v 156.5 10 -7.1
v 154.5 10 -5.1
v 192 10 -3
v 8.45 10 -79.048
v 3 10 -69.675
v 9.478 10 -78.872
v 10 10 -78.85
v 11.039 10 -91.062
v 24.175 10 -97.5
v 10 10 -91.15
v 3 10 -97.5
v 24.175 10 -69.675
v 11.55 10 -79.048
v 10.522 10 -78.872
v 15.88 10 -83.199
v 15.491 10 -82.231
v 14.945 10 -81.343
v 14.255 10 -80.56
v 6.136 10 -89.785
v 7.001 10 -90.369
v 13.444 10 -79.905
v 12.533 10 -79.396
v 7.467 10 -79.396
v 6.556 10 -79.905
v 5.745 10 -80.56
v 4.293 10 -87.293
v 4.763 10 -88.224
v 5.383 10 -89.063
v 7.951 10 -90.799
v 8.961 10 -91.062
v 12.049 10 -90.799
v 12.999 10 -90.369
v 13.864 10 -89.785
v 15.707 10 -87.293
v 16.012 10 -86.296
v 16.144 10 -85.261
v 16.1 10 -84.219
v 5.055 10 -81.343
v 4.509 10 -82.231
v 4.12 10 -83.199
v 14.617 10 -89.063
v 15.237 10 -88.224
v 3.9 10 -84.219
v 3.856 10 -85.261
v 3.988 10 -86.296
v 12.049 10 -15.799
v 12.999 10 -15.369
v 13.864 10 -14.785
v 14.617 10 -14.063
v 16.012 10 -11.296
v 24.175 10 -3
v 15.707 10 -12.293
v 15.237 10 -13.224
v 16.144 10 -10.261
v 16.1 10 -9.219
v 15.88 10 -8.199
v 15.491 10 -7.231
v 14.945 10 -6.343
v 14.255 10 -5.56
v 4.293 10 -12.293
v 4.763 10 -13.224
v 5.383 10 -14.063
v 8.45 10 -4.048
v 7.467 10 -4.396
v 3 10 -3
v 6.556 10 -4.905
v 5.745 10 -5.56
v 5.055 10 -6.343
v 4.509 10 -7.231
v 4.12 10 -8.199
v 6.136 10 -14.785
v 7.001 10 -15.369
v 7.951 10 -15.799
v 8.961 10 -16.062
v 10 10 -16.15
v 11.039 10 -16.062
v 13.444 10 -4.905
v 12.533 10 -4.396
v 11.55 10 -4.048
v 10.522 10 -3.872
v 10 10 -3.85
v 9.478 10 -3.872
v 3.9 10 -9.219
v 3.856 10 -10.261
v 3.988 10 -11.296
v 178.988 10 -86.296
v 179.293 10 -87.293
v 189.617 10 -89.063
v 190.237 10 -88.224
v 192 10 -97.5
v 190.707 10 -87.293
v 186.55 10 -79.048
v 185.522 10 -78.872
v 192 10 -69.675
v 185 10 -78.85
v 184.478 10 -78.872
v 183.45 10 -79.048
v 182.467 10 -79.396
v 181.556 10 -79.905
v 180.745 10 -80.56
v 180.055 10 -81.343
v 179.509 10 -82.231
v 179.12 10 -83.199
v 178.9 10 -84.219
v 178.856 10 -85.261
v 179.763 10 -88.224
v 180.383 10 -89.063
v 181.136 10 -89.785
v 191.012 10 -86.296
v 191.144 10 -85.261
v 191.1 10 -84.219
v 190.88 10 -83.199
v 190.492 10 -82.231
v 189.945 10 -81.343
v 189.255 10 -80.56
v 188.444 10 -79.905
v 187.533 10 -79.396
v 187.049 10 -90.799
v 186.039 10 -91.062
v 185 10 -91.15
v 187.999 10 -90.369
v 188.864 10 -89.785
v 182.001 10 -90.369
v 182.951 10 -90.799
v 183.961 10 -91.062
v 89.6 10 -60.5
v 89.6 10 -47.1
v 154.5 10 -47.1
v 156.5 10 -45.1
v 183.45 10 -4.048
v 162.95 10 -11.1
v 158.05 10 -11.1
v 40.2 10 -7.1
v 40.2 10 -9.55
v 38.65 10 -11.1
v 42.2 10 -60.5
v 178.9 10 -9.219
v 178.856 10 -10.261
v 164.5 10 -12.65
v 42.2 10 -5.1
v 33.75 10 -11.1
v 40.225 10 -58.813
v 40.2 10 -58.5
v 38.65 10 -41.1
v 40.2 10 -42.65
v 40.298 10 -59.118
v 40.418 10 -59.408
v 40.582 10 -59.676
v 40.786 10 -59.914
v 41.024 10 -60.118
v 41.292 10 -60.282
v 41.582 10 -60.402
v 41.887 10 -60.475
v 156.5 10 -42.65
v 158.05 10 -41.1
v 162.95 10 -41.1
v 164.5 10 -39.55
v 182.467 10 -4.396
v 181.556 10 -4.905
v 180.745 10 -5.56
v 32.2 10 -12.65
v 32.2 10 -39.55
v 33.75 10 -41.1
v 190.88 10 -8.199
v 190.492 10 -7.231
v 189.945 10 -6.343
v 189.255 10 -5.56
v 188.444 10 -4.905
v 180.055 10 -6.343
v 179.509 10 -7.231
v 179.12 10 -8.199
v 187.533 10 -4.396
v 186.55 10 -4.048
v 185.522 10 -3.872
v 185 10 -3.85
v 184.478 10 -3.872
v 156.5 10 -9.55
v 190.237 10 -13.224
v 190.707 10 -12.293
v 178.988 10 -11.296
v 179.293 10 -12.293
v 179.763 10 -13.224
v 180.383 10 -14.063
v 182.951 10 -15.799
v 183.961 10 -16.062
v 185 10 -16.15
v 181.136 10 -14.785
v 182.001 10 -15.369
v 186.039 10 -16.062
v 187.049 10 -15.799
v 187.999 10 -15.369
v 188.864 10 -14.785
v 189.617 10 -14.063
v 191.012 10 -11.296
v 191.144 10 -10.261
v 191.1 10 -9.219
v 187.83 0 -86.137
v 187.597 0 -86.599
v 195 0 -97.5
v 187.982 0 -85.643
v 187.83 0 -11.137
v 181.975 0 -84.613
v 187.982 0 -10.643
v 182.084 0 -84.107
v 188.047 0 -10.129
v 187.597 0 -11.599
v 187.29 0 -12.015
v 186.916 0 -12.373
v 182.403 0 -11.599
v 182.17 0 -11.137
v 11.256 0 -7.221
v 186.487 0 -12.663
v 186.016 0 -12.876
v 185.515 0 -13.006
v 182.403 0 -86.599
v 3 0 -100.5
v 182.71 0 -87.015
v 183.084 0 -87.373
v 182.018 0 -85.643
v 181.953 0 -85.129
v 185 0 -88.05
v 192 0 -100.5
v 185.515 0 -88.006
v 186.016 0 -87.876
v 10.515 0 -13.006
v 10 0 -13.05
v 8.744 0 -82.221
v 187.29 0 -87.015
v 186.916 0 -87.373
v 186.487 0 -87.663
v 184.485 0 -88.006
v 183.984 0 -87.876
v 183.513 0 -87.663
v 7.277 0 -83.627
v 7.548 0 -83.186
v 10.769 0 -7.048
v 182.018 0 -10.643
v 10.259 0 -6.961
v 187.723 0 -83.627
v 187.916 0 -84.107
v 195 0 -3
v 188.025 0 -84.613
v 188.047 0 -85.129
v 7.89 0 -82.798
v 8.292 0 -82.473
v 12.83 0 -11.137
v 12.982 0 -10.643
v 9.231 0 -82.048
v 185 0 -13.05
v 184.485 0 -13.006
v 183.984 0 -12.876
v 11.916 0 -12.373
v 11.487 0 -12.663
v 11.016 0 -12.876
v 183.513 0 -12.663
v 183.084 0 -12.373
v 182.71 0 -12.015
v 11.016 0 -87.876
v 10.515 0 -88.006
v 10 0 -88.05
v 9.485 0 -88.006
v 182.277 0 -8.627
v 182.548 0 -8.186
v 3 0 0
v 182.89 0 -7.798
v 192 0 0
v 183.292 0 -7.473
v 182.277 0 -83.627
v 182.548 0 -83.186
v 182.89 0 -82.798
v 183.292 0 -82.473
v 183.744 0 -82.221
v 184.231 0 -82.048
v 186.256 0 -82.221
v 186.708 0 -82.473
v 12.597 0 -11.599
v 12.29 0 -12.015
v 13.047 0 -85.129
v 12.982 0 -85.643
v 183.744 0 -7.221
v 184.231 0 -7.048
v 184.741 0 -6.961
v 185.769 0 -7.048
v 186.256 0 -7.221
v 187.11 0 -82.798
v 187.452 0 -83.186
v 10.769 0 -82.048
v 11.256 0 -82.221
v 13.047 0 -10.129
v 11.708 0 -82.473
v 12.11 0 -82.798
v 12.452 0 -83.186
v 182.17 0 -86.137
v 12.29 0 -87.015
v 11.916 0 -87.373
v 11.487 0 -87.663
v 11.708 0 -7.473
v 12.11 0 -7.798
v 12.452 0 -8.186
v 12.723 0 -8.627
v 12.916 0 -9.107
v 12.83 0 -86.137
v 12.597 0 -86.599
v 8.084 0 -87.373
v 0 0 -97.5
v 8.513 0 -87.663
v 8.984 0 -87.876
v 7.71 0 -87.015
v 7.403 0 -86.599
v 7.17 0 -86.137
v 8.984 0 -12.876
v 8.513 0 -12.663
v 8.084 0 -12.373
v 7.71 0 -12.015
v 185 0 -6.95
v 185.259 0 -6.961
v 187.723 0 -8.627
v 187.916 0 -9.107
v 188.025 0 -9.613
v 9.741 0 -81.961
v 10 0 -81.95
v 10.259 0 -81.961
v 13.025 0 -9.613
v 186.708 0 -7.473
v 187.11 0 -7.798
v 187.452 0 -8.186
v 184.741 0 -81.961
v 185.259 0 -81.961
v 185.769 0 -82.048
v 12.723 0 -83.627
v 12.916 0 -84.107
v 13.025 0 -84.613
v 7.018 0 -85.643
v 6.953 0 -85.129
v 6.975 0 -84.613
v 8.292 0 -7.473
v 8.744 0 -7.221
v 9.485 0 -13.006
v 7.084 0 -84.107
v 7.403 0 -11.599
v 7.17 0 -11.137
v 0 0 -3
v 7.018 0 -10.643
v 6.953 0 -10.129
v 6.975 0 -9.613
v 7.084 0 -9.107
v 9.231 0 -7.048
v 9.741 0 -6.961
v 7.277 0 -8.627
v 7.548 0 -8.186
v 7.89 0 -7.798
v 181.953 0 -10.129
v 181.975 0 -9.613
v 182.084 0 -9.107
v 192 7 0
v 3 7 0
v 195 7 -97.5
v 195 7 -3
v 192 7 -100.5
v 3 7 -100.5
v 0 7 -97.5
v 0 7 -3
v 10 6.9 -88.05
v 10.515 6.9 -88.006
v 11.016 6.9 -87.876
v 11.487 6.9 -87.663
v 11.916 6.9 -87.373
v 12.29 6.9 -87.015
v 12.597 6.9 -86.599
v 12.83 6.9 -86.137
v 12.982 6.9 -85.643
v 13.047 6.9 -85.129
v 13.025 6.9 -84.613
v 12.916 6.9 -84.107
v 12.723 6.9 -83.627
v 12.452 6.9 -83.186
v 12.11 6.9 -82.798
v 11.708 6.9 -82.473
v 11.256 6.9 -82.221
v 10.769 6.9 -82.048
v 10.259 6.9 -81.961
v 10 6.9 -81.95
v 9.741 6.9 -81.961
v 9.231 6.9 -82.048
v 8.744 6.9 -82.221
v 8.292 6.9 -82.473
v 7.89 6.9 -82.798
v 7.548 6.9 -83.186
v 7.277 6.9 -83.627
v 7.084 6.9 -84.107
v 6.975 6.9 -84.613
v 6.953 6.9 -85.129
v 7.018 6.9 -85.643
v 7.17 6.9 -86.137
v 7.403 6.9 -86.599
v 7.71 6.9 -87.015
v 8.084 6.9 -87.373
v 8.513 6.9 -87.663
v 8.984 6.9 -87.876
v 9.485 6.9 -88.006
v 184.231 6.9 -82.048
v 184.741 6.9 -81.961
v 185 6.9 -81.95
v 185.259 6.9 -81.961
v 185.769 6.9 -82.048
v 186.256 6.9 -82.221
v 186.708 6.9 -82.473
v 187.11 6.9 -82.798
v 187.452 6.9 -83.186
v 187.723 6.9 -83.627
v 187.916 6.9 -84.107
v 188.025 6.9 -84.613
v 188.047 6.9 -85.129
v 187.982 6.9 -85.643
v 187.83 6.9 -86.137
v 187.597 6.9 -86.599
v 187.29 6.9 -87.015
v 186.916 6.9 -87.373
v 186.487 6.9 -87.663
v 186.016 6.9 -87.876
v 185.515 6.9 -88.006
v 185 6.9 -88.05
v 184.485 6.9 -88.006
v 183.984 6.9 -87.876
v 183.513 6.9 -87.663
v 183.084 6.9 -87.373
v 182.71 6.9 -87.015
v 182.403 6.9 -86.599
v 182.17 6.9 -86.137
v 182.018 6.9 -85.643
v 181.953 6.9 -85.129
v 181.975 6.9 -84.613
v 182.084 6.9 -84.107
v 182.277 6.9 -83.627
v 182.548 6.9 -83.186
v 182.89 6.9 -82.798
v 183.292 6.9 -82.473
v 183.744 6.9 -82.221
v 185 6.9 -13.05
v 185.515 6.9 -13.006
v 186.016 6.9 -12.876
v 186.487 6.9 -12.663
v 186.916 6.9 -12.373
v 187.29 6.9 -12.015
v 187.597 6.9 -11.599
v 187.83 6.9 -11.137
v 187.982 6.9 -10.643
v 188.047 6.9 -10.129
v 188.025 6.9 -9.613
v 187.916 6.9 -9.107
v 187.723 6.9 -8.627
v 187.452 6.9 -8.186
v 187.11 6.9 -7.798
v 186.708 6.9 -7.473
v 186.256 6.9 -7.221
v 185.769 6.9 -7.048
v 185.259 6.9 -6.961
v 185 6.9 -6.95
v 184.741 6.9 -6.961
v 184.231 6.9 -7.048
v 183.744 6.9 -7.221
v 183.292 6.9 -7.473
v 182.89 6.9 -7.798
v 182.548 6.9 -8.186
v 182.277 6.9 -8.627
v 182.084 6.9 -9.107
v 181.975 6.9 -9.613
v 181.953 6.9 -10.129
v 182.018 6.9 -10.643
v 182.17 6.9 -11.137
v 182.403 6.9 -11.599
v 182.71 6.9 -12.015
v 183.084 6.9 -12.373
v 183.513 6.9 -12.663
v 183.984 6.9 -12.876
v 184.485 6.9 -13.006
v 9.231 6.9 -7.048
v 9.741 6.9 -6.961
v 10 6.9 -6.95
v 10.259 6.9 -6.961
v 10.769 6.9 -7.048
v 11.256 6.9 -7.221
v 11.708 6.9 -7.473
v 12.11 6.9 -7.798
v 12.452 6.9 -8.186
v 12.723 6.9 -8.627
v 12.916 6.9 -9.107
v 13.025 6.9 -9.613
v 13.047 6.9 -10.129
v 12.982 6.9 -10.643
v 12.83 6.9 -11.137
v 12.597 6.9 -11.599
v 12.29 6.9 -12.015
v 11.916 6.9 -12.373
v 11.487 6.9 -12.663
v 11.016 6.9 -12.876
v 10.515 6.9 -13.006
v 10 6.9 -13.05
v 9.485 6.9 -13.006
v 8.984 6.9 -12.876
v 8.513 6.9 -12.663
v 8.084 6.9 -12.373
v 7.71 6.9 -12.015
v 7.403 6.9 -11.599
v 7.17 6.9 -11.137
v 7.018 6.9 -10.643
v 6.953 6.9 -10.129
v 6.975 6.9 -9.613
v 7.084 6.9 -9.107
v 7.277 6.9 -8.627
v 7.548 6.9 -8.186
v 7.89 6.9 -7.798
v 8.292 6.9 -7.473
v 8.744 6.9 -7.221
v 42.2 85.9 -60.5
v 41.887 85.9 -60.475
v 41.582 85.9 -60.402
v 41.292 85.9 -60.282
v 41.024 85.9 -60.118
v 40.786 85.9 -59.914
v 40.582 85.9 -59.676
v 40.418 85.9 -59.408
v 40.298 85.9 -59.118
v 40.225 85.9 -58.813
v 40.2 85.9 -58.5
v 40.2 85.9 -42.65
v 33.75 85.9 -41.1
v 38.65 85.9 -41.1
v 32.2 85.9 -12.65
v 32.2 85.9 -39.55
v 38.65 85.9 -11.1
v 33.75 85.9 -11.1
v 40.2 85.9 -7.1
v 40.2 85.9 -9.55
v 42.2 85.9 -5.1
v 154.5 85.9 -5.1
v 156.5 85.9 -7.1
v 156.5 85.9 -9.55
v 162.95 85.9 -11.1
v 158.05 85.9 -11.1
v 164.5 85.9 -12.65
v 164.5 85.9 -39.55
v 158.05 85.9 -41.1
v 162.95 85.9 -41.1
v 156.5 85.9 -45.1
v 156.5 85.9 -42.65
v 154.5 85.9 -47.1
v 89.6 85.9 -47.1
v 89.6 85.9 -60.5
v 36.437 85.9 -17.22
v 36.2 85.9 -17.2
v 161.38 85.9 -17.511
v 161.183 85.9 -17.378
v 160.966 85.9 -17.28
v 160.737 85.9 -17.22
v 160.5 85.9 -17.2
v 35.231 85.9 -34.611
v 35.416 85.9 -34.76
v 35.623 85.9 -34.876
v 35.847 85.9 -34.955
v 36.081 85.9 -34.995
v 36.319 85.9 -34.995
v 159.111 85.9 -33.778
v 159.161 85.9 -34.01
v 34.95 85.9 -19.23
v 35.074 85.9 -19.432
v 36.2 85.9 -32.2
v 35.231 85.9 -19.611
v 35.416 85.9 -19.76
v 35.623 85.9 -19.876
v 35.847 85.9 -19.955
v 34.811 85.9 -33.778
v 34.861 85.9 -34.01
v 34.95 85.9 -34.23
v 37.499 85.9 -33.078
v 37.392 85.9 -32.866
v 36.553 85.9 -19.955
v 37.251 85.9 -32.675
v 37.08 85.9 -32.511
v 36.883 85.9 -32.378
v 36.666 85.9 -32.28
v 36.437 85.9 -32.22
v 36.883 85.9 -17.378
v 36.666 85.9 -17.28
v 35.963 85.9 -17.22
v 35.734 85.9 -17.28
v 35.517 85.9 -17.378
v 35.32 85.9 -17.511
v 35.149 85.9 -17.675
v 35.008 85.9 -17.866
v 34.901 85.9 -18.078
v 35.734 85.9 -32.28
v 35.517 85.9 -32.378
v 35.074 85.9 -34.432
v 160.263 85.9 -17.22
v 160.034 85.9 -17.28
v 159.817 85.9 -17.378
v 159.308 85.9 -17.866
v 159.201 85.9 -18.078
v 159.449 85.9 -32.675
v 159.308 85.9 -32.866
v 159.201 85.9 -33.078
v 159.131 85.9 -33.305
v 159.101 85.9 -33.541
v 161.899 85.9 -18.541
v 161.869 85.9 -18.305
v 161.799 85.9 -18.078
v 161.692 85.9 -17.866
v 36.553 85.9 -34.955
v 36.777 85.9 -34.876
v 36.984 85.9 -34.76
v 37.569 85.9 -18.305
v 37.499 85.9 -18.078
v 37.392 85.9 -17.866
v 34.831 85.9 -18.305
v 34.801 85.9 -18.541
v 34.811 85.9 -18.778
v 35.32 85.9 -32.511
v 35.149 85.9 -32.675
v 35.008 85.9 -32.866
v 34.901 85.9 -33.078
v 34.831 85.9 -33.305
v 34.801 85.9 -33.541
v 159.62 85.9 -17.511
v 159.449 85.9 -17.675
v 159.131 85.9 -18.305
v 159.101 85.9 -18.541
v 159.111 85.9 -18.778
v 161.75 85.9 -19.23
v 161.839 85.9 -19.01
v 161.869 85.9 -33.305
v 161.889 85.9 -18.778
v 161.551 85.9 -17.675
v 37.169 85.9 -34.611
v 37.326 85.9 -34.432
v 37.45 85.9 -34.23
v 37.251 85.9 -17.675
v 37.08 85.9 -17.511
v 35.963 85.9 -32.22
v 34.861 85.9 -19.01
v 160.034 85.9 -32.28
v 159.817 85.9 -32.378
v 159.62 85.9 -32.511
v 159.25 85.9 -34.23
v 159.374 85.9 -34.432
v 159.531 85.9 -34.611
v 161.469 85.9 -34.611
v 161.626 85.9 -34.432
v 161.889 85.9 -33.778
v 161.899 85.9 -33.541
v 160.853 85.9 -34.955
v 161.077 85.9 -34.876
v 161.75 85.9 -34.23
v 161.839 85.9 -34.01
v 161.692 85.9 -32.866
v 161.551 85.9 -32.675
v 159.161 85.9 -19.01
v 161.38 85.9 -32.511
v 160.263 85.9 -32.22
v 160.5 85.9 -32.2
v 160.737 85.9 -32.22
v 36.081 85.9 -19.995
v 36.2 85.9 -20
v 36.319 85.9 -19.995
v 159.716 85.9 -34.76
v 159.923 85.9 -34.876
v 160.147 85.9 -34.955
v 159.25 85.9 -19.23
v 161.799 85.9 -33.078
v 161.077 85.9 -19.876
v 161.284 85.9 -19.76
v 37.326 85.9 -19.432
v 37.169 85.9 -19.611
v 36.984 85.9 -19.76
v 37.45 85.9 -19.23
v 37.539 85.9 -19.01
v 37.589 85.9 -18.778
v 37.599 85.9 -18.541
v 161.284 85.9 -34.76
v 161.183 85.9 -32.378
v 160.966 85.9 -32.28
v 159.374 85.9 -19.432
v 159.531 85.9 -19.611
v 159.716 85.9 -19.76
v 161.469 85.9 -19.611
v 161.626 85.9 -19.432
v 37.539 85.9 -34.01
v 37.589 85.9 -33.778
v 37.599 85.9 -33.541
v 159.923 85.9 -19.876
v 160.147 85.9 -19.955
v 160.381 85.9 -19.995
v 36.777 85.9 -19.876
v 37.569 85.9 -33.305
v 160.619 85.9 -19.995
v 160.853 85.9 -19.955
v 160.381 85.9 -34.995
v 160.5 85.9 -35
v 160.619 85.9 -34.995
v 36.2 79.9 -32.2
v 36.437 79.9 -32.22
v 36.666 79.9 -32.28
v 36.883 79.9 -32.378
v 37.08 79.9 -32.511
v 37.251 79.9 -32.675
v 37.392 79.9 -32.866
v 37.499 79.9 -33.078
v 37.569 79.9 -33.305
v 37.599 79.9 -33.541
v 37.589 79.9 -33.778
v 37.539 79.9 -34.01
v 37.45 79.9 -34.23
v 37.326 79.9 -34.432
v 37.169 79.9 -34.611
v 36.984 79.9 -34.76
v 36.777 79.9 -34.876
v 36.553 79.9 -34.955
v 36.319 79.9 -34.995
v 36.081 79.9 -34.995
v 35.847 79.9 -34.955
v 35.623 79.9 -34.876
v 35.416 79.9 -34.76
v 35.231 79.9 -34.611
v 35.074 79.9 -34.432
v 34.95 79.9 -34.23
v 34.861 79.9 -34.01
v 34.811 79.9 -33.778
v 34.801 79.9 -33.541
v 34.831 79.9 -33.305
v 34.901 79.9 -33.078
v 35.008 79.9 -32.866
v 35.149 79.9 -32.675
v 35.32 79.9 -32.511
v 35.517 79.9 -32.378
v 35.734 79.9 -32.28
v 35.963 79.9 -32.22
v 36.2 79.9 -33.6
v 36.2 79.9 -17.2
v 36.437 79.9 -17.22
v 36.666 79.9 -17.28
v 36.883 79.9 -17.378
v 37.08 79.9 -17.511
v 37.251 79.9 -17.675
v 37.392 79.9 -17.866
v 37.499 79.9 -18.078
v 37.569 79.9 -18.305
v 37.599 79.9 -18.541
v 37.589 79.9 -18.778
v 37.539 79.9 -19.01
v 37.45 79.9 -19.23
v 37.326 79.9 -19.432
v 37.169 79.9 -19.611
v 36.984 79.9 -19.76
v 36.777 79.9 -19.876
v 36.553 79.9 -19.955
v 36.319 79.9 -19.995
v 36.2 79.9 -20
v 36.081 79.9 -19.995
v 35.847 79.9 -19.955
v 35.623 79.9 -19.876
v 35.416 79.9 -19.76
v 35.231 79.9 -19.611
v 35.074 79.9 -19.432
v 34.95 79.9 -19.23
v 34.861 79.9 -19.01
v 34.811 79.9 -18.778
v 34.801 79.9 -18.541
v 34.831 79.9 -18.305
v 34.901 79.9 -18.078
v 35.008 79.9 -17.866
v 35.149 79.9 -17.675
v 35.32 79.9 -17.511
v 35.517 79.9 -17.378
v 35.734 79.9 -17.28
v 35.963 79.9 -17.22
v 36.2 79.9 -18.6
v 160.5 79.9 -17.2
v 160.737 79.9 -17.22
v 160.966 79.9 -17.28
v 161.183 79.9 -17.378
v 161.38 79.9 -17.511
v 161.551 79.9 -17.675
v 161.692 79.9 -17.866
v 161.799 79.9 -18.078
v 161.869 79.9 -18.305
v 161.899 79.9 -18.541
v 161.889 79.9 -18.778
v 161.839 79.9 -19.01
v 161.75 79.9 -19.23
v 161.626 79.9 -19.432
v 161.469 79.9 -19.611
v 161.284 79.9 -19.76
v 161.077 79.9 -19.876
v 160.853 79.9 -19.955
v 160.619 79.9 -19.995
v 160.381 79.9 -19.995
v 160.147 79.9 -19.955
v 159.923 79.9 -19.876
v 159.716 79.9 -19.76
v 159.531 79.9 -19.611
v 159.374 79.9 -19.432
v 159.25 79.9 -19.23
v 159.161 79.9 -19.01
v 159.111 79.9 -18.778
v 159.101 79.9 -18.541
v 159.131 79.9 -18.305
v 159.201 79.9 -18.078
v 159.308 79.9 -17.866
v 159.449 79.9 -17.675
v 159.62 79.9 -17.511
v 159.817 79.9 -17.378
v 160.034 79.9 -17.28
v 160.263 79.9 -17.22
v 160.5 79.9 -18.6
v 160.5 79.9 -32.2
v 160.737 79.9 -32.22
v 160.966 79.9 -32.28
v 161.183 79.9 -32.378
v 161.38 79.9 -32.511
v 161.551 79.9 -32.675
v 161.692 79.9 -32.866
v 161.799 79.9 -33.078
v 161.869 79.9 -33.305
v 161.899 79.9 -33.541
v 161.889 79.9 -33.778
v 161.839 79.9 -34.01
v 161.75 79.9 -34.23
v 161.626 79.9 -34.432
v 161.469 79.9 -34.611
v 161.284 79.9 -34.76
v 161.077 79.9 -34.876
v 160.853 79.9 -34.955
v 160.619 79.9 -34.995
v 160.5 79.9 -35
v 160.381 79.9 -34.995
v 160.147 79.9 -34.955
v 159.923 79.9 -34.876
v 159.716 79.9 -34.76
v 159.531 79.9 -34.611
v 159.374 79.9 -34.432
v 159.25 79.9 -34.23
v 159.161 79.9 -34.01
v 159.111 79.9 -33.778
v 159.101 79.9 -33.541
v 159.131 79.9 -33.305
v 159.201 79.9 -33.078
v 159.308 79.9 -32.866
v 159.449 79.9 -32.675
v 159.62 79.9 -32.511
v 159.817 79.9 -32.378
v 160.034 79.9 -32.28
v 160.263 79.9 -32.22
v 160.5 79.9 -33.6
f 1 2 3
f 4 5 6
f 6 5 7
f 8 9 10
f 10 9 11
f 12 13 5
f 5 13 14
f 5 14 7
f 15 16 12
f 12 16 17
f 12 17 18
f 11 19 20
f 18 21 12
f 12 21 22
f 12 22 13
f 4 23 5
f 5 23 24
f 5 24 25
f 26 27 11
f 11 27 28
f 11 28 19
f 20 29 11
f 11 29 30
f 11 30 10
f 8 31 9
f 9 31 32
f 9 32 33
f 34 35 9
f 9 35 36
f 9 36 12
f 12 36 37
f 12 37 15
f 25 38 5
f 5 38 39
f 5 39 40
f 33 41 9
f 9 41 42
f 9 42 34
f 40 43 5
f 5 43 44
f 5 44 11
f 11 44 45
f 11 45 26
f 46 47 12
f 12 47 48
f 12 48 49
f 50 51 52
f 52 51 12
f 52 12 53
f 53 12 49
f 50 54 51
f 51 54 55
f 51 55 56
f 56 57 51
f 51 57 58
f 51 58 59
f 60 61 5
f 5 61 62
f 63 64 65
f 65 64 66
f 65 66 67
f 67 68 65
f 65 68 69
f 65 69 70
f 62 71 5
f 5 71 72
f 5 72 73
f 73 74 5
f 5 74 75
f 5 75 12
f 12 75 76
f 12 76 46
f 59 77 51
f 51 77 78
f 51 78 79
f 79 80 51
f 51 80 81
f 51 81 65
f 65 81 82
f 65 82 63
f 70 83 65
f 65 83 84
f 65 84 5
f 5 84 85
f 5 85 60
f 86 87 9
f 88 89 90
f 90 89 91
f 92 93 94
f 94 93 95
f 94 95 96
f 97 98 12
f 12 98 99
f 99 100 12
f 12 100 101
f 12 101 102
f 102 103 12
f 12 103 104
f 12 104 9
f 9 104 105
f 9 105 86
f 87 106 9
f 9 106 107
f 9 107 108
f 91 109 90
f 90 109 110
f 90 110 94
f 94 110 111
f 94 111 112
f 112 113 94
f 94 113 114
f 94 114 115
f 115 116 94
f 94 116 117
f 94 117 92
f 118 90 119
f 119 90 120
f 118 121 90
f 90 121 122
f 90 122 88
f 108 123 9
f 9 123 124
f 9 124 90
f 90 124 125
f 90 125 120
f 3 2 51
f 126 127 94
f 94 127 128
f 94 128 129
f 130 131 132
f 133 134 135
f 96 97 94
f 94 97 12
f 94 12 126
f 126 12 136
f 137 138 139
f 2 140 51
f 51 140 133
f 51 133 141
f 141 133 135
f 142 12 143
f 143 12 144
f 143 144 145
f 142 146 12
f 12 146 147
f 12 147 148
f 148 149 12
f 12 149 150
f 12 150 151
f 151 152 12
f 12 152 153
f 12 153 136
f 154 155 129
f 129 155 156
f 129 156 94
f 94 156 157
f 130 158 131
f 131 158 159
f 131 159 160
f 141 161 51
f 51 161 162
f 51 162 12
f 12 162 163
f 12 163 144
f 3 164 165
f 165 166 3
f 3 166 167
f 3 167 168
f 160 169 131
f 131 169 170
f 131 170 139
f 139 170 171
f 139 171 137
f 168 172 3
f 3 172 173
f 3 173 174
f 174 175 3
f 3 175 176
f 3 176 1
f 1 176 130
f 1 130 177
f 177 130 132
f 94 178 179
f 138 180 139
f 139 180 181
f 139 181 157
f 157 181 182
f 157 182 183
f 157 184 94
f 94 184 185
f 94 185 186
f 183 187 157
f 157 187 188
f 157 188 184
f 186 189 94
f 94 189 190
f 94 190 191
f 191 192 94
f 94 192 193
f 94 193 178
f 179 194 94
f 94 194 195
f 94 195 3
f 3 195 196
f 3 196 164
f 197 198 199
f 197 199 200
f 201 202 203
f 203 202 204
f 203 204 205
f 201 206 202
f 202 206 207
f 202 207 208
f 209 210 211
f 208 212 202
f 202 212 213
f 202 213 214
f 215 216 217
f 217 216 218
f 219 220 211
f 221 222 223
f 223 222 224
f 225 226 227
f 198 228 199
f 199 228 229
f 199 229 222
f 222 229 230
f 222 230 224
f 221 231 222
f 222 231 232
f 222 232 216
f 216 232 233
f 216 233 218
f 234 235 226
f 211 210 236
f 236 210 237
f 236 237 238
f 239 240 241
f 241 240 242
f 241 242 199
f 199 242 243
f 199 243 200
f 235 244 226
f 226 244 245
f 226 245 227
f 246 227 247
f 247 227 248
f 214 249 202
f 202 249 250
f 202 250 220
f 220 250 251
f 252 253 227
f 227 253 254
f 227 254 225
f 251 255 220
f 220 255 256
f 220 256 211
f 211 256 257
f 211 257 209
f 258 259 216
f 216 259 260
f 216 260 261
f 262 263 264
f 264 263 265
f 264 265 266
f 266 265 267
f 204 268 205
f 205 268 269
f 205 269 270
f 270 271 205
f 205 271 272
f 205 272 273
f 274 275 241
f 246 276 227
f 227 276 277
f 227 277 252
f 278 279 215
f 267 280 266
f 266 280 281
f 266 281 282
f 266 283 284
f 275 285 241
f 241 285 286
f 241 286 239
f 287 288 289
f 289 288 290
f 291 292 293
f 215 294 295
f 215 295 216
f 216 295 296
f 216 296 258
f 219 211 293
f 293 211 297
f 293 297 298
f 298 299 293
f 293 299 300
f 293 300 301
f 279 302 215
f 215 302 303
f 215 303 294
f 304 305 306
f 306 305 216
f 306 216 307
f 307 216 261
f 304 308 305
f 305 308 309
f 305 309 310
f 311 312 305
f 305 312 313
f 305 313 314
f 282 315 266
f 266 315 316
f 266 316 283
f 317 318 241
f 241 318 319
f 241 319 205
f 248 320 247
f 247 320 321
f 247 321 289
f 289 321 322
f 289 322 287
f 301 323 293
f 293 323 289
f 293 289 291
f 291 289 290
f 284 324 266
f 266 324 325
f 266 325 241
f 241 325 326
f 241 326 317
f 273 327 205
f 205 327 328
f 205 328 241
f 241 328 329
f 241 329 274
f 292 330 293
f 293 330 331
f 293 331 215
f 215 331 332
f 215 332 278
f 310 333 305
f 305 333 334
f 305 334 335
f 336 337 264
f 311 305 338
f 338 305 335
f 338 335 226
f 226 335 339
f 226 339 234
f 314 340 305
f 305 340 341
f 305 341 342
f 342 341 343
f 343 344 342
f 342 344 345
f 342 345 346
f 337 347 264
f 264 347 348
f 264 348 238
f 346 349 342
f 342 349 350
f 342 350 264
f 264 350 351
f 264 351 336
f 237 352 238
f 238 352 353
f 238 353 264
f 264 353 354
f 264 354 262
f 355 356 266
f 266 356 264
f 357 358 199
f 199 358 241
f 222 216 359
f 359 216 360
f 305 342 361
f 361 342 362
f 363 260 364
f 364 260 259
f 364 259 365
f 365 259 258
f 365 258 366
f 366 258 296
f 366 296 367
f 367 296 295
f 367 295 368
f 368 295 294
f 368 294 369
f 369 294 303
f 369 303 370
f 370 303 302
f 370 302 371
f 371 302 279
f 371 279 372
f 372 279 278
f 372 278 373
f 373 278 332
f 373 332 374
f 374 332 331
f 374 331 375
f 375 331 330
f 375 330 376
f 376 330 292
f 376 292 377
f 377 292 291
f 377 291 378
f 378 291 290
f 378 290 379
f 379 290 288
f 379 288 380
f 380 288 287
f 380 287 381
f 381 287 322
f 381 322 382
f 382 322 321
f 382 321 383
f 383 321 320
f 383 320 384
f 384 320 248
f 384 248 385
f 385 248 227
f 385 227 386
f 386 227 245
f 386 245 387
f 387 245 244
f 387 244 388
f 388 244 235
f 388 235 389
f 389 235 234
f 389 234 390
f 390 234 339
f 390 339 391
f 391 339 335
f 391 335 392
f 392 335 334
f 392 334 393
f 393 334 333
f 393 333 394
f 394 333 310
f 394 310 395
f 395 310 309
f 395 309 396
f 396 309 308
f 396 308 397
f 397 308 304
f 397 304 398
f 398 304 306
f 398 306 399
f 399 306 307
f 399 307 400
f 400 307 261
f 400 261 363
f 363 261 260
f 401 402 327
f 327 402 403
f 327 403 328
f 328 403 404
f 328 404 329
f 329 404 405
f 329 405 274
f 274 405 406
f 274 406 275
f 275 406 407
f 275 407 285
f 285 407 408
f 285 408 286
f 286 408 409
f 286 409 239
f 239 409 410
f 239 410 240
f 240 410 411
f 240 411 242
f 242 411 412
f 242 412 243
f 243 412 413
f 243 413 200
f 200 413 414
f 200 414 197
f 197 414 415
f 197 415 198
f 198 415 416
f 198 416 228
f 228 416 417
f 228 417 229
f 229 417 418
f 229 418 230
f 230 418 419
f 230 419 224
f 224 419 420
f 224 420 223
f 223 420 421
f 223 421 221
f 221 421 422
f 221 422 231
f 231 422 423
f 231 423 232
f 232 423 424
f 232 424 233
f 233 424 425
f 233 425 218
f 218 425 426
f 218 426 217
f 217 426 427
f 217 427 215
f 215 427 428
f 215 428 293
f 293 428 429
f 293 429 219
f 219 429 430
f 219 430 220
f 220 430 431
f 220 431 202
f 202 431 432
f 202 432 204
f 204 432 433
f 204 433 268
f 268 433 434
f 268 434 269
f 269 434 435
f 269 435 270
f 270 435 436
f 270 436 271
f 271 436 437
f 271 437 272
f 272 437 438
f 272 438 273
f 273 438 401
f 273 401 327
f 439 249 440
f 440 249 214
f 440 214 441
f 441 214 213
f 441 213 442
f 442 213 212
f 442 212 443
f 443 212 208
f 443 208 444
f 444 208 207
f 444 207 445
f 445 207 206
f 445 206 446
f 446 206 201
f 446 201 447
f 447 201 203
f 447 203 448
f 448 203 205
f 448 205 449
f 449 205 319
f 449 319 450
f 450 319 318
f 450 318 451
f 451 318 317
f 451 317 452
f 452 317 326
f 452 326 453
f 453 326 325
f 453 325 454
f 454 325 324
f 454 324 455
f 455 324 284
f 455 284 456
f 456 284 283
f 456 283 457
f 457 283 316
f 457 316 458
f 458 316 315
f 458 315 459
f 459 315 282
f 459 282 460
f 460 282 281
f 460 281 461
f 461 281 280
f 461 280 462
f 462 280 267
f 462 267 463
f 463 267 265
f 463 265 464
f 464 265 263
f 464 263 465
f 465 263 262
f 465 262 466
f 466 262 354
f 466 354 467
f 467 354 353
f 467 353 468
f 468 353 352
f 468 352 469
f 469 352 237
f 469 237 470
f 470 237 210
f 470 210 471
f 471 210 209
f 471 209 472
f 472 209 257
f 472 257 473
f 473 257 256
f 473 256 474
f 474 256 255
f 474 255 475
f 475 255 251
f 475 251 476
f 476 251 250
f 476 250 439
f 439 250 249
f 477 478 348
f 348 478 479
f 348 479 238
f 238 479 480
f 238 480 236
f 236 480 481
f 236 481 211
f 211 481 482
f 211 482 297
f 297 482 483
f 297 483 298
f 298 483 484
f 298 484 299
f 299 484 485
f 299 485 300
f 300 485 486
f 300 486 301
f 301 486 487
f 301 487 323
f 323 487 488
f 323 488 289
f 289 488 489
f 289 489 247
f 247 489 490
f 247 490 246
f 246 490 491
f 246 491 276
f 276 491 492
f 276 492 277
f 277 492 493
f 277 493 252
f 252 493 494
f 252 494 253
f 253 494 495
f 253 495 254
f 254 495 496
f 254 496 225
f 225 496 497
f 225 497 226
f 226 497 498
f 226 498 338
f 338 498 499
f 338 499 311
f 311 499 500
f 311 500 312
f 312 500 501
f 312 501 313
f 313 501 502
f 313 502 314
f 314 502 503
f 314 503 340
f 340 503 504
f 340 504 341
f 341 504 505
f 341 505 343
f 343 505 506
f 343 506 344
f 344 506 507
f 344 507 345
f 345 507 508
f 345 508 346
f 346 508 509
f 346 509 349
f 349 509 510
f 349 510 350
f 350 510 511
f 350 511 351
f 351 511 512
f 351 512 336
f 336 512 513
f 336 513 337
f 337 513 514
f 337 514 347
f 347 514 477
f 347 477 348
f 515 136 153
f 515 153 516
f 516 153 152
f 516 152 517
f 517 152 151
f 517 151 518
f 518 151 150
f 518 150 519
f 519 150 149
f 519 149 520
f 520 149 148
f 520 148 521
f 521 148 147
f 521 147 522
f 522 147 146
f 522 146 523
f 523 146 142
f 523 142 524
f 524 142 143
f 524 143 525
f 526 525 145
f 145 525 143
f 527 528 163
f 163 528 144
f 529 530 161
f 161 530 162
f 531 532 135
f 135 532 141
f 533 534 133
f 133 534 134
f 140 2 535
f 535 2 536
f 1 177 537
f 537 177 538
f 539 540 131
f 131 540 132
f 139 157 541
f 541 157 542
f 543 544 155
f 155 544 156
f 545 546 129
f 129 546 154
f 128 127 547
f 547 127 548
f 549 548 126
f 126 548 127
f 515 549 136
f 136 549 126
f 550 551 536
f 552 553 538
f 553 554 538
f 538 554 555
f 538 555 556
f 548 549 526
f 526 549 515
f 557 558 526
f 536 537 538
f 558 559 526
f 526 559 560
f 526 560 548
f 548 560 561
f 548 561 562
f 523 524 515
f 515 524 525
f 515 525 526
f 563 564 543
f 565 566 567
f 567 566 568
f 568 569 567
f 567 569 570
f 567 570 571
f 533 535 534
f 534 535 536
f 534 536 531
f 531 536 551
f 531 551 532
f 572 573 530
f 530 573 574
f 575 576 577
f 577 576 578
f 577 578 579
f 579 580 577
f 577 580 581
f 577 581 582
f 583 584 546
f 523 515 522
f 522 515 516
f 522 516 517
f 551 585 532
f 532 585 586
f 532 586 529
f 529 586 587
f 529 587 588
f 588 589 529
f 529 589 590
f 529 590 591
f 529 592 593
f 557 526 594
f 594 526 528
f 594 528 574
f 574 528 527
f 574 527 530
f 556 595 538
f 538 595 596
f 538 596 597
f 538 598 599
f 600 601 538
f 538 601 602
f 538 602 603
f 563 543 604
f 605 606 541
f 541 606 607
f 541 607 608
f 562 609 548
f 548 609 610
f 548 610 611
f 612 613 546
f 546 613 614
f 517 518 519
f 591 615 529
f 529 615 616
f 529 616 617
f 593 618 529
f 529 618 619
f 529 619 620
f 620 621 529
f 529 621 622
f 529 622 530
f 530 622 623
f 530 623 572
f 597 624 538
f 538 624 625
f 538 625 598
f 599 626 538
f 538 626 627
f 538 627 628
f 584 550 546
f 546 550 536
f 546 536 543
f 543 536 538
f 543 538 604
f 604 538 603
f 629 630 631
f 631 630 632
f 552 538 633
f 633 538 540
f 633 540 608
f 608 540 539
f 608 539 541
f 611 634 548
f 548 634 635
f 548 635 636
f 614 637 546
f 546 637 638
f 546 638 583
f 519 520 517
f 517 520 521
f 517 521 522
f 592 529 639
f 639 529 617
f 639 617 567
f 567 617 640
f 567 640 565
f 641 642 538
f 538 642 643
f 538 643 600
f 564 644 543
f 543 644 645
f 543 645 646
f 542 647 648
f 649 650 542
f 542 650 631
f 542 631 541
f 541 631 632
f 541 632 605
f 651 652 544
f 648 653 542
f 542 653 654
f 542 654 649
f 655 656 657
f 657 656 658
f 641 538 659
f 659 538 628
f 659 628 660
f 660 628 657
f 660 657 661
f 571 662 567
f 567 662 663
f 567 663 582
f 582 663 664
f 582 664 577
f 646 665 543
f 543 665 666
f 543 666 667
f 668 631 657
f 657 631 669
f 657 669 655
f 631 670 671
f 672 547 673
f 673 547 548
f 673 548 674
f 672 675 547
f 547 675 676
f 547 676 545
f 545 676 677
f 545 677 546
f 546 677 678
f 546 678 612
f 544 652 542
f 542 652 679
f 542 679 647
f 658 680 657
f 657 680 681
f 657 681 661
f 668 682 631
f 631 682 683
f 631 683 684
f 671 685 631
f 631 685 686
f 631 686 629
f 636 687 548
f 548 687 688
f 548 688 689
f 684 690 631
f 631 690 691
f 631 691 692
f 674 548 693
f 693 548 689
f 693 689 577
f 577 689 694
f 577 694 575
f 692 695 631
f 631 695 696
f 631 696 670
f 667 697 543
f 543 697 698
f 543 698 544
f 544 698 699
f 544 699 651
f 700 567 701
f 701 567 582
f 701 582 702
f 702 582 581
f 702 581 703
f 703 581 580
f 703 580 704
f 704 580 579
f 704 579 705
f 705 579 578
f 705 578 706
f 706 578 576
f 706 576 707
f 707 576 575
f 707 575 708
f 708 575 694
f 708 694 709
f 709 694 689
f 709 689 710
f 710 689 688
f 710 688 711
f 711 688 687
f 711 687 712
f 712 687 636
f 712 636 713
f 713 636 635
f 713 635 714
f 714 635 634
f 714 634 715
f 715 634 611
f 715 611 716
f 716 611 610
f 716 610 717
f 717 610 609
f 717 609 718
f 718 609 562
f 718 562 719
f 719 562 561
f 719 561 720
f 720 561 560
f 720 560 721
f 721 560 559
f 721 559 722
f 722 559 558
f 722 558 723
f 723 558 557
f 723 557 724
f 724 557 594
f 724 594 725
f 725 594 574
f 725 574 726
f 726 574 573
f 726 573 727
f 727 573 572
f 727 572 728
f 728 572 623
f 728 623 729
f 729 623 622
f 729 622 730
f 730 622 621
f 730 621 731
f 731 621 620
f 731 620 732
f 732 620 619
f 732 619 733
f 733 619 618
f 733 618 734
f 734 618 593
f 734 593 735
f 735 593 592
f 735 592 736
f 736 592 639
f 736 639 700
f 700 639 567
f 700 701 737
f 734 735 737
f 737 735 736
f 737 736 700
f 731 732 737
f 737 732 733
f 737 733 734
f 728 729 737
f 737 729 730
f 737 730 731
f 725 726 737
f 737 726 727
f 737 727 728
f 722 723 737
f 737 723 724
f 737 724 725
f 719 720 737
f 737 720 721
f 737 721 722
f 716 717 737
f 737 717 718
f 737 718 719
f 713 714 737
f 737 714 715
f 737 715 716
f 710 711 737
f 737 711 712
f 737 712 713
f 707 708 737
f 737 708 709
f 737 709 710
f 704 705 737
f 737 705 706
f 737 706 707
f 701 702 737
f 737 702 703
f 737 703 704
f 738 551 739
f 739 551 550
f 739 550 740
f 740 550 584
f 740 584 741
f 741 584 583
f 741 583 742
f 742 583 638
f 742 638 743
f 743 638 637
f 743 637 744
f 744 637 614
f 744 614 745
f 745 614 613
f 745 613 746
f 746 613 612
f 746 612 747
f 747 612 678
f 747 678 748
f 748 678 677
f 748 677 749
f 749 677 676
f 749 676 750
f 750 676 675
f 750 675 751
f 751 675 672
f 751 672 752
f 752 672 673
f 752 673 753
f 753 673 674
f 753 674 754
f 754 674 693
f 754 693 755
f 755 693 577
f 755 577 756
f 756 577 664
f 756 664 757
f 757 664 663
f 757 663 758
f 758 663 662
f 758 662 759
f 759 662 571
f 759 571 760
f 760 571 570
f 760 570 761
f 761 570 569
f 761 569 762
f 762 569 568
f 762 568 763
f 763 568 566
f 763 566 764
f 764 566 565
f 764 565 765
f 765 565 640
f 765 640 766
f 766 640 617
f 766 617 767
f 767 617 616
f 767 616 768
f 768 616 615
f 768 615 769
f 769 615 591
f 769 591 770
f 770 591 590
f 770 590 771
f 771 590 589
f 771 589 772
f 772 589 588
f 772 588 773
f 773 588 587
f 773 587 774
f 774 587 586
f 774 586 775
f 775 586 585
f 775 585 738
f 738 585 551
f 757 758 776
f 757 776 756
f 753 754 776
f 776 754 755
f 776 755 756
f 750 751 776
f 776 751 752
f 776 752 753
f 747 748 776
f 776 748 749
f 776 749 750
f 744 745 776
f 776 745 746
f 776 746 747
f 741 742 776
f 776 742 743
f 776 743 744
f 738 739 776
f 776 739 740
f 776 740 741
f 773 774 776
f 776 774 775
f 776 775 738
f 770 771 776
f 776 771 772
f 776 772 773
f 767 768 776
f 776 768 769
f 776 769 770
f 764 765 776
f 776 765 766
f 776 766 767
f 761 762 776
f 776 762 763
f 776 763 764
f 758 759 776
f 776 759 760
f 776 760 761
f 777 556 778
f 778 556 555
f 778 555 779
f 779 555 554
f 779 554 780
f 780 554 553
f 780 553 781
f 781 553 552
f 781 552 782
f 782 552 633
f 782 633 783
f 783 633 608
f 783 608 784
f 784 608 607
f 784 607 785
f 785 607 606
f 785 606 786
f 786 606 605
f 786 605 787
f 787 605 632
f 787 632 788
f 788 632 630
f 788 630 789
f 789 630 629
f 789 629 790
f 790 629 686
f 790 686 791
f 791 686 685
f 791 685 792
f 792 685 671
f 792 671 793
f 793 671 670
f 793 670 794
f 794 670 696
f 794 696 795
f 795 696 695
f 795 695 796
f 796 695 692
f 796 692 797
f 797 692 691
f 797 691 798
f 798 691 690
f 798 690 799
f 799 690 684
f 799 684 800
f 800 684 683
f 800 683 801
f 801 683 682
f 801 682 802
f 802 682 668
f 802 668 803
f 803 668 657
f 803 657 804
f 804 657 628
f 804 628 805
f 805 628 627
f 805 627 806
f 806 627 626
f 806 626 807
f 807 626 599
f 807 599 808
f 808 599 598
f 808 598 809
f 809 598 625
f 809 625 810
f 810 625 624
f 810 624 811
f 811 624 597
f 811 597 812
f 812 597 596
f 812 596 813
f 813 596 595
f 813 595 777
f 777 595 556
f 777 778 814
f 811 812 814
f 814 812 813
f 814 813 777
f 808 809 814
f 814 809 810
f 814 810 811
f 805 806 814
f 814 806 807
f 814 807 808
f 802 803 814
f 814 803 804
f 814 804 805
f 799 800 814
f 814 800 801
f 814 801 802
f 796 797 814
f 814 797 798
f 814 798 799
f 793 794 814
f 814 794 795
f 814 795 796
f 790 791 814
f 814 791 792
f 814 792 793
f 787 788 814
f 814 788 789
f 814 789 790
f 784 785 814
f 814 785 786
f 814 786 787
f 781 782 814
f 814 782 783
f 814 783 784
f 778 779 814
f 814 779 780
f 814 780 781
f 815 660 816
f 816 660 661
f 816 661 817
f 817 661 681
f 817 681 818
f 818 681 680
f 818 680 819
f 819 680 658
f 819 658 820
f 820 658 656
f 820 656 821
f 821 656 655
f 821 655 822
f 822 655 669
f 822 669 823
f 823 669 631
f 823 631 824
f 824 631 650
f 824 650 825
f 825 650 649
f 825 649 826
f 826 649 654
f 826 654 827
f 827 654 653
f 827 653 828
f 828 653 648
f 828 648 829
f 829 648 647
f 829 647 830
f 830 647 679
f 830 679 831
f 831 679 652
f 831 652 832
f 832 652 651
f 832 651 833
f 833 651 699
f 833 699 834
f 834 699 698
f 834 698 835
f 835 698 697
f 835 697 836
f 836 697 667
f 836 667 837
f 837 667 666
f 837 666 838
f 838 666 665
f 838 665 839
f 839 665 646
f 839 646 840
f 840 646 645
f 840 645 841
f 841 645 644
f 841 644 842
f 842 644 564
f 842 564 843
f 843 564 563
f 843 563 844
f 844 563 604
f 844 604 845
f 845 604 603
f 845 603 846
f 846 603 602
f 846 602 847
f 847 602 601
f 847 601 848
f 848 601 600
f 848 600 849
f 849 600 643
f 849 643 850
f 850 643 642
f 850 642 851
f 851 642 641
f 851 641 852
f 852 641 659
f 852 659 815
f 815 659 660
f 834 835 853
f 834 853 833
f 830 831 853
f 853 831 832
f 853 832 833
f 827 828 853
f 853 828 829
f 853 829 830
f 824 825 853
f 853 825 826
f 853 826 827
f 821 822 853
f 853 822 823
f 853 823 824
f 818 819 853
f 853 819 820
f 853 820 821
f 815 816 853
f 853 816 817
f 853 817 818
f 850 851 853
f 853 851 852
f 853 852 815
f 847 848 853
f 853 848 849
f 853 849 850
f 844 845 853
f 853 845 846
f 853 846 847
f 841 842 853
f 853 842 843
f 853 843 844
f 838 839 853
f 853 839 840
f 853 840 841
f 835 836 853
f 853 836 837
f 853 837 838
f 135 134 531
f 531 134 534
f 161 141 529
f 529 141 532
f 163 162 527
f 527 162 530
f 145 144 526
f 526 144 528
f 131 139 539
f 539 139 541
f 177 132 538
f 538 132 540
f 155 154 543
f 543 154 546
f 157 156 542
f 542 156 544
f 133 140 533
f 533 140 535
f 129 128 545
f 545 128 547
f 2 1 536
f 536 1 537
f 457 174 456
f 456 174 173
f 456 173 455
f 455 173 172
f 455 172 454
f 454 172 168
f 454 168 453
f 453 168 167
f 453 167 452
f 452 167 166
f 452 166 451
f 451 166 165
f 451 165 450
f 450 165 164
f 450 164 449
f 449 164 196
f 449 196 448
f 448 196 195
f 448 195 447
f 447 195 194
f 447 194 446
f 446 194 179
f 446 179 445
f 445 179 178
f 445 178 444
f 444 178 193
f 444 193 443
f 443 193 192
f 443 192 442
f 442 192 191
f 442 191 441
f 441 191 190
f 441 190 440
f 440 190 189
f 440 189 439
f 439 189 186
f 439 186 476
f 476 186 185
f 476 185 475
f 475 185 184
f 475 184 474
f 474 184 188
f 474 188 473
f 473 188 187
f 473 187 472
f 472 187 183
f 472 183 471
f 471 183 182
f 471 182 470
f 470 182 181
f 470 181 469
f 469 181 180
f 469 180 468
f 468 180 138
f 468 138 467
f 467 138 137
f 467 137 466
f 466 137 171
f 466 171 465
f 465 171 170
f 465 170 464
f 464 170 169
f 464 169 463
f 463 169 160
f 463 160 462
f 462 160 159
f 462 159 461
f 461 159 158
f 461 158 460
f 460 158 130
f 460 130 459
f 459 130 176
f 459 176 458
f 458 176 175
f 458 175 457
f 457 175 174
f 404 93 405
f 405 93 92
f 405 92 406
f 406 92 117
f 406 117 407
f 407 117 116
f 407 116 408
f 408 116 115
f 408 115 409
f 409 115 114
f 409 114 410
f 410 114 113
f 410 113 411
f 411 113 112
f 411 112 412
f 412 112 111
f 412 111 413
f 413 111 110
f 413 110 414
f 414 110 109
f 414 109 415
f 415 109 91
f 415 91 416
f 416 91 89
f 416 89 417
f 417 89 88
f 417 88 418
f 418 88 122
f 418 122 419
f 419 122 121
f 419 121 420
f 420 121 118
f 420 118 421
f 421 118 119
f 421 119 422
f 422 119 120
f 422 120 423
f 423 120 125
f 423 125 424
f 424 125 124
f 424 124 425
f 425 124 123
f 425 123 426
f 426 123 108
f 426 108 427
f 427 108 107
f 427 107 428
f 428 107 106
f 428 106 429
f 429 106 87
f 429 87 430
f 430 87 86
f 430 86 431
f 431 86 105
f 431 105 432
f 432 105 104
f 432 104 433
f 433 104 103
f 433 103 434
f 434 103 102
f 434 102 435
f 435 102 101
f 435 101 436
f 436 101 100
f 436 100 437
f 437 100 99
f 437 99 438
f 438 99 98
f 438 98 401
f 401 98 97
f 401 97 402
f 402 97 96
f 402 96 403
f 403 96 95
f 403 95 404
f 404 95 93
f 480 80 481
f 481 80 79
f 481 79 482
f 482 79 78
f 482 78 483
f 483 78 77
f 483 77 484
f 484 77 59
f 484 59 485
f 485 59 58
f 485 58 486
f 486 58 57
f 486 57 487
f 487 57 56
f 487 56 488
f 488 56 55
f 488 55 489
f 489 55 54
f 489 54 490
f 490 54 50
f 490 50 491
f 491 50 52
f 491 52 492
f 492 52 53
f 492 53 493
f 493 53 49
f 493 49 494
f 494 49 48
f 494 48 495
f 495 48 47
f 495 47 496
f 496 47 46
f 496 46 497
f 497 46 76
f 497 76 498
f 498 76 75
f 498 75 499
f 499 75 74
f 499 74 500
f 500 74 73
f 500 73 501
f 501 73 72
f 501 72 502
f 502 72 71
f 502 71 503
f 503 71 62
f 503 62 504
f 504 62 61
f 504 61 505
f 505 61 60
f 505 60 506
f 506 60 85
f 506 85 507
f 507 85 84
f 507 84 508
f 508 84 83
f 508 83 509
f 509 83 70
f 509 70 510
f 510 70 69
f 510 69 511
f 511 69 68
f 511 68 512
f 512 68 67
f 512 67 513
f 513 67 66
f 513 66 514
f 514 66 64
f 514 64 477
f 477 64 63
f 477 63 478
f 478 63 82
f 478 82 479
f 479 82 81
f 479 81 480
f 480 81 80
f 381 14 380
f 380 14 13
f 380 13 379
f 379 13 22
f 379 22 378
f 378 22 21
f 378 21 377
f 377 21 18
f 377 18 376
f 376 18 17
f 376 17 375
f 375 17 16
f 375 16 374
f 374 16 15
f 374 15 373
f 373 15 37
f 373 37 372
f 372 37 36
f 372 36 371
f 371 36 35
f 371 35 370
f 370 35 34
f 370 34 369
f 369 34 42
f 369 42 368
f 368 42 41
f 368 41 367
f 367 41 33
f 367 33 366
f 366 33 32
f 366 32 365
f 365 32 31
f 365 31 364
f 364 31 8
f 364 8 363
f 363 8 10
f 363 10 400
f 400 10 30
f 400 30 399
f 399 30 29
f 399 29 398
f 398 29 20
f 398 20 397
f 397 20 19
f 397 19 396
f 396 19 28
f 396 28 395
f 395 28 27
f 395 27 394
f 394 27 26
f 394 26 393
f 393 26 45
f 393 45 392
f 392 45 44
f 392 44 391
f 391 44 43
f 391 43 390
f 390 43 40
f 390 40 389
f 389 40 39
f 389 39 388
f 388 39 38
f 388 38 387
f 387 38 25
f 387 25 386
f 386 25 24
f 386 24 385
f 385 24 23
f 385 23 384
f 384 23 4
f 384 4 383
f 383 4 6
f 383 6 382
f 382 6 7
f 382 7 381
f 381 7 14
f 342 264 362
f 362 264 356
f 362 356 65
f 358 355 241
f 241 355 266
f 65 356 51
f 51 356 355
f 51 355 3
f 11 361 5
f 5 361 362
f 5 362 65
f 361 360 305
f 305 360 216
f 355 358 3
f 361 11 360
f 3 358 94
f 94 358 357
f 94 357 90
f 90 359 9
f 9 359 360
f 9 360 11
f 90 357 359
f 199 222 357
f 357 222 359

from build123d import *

# Parameters (mm, degrees)
SKETCH1_R           = 3.05
BOSS_EXTRUDE1_DEPTH = 10
BOSS_EXTRUDE2_DEPTH = 75.9
SKETCH3_R           = 1.4
CUT_EXTRUDE1_DEPTH  = 6
CHAMFER1_SIZE       = 1.55
CHAMFER2_SIZE       = 2
CHAMFER3_SIZE       = 3.1
CHAMFER4_SIZE       = 3


with BuildPart() as part:
    # Sketch1 → Boss-Extrude1 (new body)
    with BuildSketch(Plane(origin=(0, 0, 0), x_dir=(1, 0, 0), z_dir=(0, 1, 0))):
        Polygon((0, 0), (195, 0), (195, 95), (195, 100.5), (0, 100.5), (0, 95), align=None)
        with Locations(Location((10, 85, 0), (0, 0, 270))):
            Circle(SKETCH1_R, mode=Mode.SUBTRACT)
        with Locations(Location((185, 85, 0), (0, 0, 90))):
            Circle(SKETCH1_R, mode=Mode.SUBTRACT)
        with Locations(Location((185, 10, 0), (0, 0, 270))):
            Circle(SKETCH1_R, mode=Mode.SUBTRACT)
        with Locations(Location((10, 10, 0), (0, 0, 90))):
            Circle(SKETCH1_R, mode=Mode.SUBTRACT)
    extrude(amount=BOSS_EXTRUDE1_DEPTH)

    # Sketch2 → Boss-Extrude2 (add)
    with BuildSketch(Plane(origin=(0, 10, 0), x_dir=(1, 0, 0), z_dir=(0, 1, 0))):
        with BuildLine():
            Line((42.2, 60.5), (89.6, 60.5))
            Line((89.6, 60.5), (89.6, 47.1))
            Line((89.6, 47.1), (156.5, 47.1))
            Line((156.5, 47.1), (156.5, 41.1))
            Line((156.5, 41.1), (164.5, 41.1))
            Line((164.5, 41.1), (164.5, 11.1))
            Line((164.5, 11.1), (156.5, 11.1))
            Line((156.5, 11.1), (156.5, 5.1))
            Line((156.5, 5.1), (40.2, 5.1))
            Line((40.2, 5.1), (40.2, 11.1))
            Line((40.2, 11.1), (32.2, 11.1))
            Line((32.2, 11.1), (32.2, 41.1))
            Line((32.2, 41.1), (40.2, 41.1))
            Line((40.2, 41.1), (40.2, 58.5))
            ThreePointArc((40.2, 58.5), (40.785786438, 59.914213562), (42.2, 60.5))
        make_face()
    extrude(amount=BOSS_EXTRUDE2_DEPTH)

    # Sketch3 → Cut-Extrude1 (cut)
    with BuildSketch(Plane(origin=(0, 85.9, 0), x_dir=(1, 0, 0), z_dir=(0, 1, 0))):
        with Locations(Location((36.2, 33.6, 0), (0, 0, 270))):
            Circle(SKETCH3_R)
        with Locations(Location((36.2, 18.6, 0), (0, 0, 90))):
            Circle(SKETCH3_R)
        with Locations(Location((160.5, 18.6, 0), (0, 0, 270))):
            Circle(SKETCH3_R)
        with Locations(Location((160.5, 33.6, 0), (0, 0, 90))):
            Circle(SKETCH3_R)
    extrude(amount=-CUT_EXTRUDE1_DEPTH, mode=Mode.SUBTRACT)

    # Chamfer1
    chamfer1_edges = [part.edges().sort_by_distance(p)[0] for p in [
        (40.2, 47.95, -41.1),
        (32.2, 47.95, -41.1),
        (32.2, 47.95, -11.1),
        (40.2, 47.95, -11.1),
        (156.5, 47.95, -11.1),
        (164.5, 47.95, -11.1),
        (164.5, 47.95, -41.1),
        (156.5, 47.95, -41.1),
    ]]
    chamfer(chamfer1_edges, length=CHAMFER1_SIZE)

    # Chamfer2
    chamfer2_edges = [part.edges().sort_by_distance(p)[0] for p in [
        (40.2, 47.95, -5.1),
        (156.5, 47.95, -5.1),
        (156.5, 47.95, -47.1),
    ]]
    chamfer(chamfer2_edges, length=CHAMFER2_SIZE)

    # Chamfer3
    chamfer3_edges = [part.edges().sort_by_distance(p)[0] for p in [
        (10, 10, -88.05),
        (185, 10, -81.95),
        (185, 10, -13.05),
        (10, 10, -6.95),
    ]]
    chamfer(chamfer3_edges, length=CHAMFER3_SIZE)

    # Chamfer4
    chamfer4_edges = [part.edges().sort_by_distance(p)[0] for p in [
        (0, 5, -100.5),
        (195, 5, -100.5),
        (195, 5, 0),
        (0, 5, 0),
        (195, 10, -50.25),
        (97.5, 10, -100.5),
        (0, 10, -50.25),
        (97.5, 10, 0),
    ]]
    chamfer(chamfer4_edges, length=CHAMFER4_SIZE)


solid = part.part
